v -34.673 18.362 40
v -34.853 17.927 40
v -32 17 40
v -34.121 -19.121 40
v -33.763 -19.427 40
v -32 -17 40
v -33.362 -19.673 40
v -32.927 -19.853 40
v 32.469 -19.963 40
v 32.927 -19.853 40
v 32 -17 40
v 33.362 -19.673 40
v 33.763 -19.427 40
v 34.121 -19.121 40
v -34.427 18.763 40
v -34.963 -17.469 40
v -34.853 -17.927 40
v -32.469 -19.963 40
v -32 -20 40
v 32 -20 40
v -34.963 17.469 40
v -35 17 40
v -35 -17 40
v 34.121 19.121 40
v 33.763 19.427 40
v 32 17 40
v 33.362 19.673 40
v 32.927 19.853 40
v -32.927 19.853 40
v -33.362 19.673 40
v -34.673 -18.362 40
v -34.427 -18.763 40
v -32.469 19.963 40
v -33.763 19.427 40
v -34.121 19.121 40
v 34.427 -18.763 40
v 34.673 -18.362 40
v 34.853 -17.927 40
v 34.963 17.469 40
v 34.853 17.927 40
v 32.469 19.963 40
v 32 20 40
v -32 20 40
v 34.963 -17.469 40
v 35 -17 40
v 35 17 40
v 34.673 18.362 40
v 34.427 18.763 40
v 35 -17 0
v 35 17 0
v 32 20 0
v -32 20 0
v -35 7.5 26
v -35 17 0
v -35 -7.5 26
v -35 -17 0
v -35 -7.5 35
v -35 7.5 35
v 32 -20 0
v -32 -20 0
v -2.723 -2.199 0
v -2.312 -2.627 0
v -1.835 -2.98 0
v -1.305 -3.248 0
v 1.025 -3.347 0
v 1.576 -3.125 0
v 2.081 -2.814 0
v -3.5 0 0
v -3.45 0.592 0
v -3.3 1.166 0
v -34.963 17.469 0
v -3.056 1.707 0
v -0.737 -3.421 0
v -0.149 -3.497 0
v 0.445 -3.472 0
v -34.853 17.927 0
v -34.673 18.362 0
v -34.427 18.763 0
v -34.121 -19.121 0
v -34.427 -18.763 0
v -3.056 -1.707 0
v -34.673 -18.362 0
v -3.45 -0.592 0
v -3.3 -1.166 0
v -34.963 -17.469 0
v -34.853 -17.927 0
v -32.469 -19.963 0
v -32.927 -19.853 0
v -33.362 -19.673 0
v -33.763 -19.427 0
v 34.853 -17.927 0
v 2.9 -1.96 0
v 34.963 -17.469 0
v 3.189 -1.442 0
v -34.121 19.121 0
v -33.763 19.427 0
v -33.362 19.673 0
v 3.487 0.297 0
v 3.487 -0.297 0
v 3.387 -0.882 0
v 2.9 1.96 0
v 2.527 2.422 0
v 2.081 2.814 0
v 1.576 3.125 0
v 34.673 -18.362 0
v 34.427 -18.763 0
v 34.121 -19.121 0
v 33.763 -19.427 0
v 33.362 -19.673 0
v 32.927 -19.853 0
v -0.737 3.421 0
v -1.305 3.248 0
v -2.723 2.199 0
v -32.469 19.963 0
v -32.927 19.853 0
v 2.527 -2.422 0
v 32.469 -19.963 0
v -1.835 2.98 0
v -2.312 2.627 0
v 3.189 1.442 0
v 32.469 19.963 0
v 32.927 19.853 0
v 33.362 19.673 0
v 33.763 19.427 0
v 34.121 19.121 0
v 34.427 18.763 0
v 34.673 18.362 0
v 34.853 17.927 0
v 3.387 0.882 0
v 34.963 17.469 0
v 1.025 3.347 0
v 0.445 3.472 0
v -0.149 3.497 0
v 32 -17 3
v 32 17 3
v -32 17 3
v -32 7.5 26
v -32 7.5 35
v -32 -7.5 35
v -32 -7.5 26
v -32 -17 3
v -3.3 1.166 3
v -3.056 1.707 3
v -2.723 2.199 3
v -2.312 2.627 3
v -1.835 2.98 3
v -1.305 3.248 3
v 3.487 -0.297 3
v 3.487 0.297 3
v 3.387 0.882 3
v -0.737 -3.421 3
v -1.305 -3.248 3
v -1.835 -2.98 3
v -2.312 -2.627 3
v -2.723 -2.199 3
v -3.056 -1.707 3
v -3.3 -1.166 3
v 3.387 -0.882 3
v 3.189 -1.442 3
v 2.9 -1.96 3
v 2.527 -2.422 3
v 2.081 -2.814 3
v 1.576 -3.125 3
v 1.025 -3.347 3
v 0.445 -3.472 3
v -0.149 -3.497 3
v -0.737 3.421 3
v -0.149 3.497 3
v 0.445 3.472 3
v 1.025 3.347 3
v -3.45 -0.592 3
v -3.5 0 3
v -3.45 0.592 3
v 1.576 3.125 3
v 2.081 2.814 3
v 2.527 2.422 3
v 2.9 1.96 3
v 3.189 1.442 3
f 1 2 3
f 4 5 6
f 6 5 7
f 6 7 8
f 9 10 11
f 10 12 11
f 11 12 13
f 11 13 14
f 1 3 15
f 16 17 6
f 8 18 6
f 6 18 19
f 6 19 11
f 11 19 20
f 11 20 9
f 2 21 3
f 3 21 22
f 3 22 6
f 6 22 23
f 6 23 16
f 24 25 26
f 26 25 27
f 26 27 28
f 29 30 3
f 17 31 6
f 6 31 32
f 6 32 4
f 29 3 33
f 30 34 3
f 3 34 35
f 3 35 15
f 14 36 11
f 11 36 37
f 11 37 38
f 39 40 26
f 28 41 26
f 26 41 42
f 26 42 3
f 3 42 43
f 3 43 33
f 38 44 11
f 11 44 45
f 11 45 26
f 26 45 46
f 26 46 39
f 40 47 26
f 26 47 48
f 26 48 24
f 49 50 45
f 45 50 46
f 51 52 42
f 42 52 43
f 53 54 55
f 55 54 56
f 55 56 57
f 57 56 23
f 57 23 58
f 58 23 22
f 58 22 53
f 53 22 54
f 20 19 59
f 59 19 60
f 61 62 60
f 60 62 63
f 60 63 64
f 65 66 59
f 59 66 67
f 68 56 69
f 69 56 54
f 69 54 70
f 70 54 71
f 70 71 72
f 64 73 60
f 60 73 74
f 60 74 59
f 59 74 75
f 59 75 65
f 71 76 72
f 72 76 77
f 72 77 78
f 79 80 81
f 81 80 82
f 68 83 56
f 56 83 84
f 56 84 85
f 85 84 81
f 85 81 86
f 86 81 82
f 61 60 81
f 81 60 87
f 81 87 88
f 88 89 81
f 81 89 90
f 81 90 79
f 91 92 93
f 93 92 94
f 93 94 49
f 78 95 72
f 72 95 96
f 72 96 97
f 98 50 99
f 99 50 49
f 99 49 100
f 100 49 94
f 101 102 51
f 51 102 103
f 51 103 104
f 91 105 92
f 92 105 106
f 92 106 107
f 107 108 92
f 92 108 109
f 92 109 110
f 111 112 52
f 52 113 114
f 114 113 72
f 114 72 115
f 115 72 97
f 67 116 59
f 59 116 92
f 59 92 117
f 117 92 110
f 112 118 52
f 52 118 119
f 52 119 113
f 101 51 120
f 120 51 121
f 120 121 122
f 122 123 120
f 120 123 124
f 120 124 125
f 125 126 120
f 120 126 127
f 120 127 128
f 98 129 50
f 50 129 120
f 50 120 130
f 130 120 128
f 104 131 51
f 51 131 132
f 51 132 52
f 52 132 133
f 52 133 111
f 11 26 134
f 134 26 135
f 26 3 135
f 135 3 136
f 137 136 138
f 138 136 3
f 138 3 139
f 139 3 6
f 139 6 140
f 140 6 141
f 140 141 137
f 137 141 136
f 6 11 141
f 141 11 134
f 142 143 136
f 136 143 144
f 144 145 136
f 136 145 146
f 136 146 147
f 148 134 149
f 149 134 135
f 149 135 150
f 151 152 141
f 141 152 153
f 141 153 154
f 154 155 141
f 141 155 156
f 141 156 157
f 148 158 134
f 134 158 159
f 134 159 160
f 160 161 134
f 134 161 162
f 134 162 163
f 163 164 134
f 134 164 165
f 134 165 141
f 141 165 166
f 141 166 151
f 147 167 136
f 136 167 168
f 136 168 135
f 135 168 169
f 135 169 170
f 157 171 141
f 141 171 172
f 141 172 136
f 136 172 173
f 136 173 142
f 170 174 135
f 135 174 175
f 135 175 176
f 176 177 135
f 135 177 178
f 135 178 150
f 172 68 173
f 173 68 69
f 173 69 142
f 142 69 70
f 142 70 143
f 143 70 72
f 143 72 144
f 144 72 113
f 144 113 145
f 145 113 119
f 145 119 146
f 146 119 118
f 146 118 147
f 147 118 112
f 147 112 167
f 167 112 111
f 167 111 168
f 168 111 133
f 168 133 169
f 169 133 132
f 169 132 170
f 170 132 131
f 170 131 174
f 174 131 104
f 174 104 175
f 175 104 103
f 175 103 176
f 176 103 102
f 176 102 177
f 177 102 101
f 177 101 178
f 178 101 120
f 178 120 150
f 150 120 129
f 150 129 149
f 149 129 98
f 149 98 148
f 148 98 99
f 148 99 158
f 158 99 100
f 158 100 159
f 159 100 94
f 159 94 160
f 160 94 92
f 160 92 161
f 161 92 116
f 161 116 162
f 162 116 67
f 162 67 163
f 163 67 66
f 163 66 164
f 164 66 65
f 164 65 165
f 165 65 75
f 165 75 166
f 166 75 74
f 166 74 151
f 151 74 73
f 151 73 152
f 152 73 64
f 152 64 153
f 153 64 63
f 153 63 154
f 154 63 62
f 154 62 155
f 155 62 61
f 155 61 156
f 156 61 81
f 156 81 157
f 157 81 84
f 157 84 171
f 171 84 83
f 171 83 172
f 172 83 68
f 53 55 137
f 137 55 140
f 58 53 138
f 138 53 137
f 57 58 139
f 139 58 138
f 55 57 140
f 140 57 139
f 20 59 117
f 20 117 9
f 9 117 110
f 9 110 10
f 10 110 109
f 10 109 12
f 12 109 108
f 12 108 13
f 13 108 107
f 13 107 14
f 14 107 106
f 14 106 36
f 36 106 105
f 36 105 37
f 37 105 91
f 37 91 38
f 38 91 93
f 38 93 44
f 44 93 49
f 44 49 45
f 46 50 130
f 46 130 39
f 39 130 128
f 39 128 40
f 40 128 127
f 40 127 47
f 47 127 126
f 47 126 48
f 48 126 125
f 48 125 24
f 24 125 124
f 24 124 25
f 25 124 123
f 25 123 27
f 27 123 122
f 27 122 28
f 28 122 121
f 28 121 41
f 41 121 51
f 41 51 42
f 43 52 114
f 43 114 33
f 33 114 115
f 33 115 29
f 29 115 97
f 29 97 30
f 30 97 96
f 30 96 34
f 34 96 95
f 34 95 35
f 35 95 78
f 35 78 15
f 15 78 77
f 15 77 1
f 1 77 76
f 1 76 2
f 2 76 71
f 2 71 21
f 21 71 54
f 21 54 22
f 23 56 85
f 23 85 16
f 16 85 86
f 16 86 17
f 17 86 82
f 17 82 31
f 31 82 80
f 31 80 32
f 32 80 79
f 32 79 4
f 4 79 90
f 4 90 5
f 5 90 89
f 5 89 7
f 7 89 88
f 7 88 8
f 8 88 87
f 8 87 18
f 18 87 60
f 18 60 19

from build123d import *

# Parameters (mm, degrees)
SKETCH1_W           = 70
SKETCH1_H           = 40
BOSS_EXTRUDE2_DEPTH = 40
SHELL2_T            = -3
SKETCH2_R           = 3.5
CUT_EXTRUDE1_DEPTH  = 40
SKETCH5_W           = 9
SKETCH5_H           = 15
CUT_EXTRUDE2_DEPTH  = 40
FILLET1_R           = 3


with BuildPart() as part:
    # Sketch1 → Boss-Extrude2 (new body)
    with BuildSketch(Plane.XY):
        Rectangle(SKETCH1_W, SKETCH1_H)
    extrude(amount=BOSS_EXTRUDE2_DEPTH)

    # Shell2
    shell2_openings = [part.faces().sort_by_distance(p)[0] for p in [
        (0, 0, 40),
    ]]
    offset(amount=SHELL2_T, openings=shell2_openings, kind=Kind.INTERSECTION)

    # Sketch2 → Cut-Extrude1 (cut)
    with BuildSketch(Plane(origin=(0, 0, 0), x_dir=(-1, 0, 0), z_dir=(0, 0, -1))):
        Circle(SKETCH2_R)
    extrude(amount=-CUT_EXTRUDE1_DEPTH, mode=Mode.SUBTRACT)

    # Sketch5 → Cut-Extrude2 (cut)
    with BuildSketch(Plane.ZY.offset(35)):
        with Locations((30.5, 0)):
            Rectangle(SKETCH5_W, SKETCH5_H)
    extrude(amount=-CUT_EXTRUDE2_DEPTH, mode=Mode.SUBTRACT)

    # Fillet1
    fillet1_edges = [part.edges().sort_by_distance(p)[0] for p in [
        (35, -20, 20),
        (-35, -20, 20),
        (-35, 20, 20),
        (35, 20, 20),
    ]]
    fillet(fillet1_edges, radius=FILLET1_R)


solid = part.part
